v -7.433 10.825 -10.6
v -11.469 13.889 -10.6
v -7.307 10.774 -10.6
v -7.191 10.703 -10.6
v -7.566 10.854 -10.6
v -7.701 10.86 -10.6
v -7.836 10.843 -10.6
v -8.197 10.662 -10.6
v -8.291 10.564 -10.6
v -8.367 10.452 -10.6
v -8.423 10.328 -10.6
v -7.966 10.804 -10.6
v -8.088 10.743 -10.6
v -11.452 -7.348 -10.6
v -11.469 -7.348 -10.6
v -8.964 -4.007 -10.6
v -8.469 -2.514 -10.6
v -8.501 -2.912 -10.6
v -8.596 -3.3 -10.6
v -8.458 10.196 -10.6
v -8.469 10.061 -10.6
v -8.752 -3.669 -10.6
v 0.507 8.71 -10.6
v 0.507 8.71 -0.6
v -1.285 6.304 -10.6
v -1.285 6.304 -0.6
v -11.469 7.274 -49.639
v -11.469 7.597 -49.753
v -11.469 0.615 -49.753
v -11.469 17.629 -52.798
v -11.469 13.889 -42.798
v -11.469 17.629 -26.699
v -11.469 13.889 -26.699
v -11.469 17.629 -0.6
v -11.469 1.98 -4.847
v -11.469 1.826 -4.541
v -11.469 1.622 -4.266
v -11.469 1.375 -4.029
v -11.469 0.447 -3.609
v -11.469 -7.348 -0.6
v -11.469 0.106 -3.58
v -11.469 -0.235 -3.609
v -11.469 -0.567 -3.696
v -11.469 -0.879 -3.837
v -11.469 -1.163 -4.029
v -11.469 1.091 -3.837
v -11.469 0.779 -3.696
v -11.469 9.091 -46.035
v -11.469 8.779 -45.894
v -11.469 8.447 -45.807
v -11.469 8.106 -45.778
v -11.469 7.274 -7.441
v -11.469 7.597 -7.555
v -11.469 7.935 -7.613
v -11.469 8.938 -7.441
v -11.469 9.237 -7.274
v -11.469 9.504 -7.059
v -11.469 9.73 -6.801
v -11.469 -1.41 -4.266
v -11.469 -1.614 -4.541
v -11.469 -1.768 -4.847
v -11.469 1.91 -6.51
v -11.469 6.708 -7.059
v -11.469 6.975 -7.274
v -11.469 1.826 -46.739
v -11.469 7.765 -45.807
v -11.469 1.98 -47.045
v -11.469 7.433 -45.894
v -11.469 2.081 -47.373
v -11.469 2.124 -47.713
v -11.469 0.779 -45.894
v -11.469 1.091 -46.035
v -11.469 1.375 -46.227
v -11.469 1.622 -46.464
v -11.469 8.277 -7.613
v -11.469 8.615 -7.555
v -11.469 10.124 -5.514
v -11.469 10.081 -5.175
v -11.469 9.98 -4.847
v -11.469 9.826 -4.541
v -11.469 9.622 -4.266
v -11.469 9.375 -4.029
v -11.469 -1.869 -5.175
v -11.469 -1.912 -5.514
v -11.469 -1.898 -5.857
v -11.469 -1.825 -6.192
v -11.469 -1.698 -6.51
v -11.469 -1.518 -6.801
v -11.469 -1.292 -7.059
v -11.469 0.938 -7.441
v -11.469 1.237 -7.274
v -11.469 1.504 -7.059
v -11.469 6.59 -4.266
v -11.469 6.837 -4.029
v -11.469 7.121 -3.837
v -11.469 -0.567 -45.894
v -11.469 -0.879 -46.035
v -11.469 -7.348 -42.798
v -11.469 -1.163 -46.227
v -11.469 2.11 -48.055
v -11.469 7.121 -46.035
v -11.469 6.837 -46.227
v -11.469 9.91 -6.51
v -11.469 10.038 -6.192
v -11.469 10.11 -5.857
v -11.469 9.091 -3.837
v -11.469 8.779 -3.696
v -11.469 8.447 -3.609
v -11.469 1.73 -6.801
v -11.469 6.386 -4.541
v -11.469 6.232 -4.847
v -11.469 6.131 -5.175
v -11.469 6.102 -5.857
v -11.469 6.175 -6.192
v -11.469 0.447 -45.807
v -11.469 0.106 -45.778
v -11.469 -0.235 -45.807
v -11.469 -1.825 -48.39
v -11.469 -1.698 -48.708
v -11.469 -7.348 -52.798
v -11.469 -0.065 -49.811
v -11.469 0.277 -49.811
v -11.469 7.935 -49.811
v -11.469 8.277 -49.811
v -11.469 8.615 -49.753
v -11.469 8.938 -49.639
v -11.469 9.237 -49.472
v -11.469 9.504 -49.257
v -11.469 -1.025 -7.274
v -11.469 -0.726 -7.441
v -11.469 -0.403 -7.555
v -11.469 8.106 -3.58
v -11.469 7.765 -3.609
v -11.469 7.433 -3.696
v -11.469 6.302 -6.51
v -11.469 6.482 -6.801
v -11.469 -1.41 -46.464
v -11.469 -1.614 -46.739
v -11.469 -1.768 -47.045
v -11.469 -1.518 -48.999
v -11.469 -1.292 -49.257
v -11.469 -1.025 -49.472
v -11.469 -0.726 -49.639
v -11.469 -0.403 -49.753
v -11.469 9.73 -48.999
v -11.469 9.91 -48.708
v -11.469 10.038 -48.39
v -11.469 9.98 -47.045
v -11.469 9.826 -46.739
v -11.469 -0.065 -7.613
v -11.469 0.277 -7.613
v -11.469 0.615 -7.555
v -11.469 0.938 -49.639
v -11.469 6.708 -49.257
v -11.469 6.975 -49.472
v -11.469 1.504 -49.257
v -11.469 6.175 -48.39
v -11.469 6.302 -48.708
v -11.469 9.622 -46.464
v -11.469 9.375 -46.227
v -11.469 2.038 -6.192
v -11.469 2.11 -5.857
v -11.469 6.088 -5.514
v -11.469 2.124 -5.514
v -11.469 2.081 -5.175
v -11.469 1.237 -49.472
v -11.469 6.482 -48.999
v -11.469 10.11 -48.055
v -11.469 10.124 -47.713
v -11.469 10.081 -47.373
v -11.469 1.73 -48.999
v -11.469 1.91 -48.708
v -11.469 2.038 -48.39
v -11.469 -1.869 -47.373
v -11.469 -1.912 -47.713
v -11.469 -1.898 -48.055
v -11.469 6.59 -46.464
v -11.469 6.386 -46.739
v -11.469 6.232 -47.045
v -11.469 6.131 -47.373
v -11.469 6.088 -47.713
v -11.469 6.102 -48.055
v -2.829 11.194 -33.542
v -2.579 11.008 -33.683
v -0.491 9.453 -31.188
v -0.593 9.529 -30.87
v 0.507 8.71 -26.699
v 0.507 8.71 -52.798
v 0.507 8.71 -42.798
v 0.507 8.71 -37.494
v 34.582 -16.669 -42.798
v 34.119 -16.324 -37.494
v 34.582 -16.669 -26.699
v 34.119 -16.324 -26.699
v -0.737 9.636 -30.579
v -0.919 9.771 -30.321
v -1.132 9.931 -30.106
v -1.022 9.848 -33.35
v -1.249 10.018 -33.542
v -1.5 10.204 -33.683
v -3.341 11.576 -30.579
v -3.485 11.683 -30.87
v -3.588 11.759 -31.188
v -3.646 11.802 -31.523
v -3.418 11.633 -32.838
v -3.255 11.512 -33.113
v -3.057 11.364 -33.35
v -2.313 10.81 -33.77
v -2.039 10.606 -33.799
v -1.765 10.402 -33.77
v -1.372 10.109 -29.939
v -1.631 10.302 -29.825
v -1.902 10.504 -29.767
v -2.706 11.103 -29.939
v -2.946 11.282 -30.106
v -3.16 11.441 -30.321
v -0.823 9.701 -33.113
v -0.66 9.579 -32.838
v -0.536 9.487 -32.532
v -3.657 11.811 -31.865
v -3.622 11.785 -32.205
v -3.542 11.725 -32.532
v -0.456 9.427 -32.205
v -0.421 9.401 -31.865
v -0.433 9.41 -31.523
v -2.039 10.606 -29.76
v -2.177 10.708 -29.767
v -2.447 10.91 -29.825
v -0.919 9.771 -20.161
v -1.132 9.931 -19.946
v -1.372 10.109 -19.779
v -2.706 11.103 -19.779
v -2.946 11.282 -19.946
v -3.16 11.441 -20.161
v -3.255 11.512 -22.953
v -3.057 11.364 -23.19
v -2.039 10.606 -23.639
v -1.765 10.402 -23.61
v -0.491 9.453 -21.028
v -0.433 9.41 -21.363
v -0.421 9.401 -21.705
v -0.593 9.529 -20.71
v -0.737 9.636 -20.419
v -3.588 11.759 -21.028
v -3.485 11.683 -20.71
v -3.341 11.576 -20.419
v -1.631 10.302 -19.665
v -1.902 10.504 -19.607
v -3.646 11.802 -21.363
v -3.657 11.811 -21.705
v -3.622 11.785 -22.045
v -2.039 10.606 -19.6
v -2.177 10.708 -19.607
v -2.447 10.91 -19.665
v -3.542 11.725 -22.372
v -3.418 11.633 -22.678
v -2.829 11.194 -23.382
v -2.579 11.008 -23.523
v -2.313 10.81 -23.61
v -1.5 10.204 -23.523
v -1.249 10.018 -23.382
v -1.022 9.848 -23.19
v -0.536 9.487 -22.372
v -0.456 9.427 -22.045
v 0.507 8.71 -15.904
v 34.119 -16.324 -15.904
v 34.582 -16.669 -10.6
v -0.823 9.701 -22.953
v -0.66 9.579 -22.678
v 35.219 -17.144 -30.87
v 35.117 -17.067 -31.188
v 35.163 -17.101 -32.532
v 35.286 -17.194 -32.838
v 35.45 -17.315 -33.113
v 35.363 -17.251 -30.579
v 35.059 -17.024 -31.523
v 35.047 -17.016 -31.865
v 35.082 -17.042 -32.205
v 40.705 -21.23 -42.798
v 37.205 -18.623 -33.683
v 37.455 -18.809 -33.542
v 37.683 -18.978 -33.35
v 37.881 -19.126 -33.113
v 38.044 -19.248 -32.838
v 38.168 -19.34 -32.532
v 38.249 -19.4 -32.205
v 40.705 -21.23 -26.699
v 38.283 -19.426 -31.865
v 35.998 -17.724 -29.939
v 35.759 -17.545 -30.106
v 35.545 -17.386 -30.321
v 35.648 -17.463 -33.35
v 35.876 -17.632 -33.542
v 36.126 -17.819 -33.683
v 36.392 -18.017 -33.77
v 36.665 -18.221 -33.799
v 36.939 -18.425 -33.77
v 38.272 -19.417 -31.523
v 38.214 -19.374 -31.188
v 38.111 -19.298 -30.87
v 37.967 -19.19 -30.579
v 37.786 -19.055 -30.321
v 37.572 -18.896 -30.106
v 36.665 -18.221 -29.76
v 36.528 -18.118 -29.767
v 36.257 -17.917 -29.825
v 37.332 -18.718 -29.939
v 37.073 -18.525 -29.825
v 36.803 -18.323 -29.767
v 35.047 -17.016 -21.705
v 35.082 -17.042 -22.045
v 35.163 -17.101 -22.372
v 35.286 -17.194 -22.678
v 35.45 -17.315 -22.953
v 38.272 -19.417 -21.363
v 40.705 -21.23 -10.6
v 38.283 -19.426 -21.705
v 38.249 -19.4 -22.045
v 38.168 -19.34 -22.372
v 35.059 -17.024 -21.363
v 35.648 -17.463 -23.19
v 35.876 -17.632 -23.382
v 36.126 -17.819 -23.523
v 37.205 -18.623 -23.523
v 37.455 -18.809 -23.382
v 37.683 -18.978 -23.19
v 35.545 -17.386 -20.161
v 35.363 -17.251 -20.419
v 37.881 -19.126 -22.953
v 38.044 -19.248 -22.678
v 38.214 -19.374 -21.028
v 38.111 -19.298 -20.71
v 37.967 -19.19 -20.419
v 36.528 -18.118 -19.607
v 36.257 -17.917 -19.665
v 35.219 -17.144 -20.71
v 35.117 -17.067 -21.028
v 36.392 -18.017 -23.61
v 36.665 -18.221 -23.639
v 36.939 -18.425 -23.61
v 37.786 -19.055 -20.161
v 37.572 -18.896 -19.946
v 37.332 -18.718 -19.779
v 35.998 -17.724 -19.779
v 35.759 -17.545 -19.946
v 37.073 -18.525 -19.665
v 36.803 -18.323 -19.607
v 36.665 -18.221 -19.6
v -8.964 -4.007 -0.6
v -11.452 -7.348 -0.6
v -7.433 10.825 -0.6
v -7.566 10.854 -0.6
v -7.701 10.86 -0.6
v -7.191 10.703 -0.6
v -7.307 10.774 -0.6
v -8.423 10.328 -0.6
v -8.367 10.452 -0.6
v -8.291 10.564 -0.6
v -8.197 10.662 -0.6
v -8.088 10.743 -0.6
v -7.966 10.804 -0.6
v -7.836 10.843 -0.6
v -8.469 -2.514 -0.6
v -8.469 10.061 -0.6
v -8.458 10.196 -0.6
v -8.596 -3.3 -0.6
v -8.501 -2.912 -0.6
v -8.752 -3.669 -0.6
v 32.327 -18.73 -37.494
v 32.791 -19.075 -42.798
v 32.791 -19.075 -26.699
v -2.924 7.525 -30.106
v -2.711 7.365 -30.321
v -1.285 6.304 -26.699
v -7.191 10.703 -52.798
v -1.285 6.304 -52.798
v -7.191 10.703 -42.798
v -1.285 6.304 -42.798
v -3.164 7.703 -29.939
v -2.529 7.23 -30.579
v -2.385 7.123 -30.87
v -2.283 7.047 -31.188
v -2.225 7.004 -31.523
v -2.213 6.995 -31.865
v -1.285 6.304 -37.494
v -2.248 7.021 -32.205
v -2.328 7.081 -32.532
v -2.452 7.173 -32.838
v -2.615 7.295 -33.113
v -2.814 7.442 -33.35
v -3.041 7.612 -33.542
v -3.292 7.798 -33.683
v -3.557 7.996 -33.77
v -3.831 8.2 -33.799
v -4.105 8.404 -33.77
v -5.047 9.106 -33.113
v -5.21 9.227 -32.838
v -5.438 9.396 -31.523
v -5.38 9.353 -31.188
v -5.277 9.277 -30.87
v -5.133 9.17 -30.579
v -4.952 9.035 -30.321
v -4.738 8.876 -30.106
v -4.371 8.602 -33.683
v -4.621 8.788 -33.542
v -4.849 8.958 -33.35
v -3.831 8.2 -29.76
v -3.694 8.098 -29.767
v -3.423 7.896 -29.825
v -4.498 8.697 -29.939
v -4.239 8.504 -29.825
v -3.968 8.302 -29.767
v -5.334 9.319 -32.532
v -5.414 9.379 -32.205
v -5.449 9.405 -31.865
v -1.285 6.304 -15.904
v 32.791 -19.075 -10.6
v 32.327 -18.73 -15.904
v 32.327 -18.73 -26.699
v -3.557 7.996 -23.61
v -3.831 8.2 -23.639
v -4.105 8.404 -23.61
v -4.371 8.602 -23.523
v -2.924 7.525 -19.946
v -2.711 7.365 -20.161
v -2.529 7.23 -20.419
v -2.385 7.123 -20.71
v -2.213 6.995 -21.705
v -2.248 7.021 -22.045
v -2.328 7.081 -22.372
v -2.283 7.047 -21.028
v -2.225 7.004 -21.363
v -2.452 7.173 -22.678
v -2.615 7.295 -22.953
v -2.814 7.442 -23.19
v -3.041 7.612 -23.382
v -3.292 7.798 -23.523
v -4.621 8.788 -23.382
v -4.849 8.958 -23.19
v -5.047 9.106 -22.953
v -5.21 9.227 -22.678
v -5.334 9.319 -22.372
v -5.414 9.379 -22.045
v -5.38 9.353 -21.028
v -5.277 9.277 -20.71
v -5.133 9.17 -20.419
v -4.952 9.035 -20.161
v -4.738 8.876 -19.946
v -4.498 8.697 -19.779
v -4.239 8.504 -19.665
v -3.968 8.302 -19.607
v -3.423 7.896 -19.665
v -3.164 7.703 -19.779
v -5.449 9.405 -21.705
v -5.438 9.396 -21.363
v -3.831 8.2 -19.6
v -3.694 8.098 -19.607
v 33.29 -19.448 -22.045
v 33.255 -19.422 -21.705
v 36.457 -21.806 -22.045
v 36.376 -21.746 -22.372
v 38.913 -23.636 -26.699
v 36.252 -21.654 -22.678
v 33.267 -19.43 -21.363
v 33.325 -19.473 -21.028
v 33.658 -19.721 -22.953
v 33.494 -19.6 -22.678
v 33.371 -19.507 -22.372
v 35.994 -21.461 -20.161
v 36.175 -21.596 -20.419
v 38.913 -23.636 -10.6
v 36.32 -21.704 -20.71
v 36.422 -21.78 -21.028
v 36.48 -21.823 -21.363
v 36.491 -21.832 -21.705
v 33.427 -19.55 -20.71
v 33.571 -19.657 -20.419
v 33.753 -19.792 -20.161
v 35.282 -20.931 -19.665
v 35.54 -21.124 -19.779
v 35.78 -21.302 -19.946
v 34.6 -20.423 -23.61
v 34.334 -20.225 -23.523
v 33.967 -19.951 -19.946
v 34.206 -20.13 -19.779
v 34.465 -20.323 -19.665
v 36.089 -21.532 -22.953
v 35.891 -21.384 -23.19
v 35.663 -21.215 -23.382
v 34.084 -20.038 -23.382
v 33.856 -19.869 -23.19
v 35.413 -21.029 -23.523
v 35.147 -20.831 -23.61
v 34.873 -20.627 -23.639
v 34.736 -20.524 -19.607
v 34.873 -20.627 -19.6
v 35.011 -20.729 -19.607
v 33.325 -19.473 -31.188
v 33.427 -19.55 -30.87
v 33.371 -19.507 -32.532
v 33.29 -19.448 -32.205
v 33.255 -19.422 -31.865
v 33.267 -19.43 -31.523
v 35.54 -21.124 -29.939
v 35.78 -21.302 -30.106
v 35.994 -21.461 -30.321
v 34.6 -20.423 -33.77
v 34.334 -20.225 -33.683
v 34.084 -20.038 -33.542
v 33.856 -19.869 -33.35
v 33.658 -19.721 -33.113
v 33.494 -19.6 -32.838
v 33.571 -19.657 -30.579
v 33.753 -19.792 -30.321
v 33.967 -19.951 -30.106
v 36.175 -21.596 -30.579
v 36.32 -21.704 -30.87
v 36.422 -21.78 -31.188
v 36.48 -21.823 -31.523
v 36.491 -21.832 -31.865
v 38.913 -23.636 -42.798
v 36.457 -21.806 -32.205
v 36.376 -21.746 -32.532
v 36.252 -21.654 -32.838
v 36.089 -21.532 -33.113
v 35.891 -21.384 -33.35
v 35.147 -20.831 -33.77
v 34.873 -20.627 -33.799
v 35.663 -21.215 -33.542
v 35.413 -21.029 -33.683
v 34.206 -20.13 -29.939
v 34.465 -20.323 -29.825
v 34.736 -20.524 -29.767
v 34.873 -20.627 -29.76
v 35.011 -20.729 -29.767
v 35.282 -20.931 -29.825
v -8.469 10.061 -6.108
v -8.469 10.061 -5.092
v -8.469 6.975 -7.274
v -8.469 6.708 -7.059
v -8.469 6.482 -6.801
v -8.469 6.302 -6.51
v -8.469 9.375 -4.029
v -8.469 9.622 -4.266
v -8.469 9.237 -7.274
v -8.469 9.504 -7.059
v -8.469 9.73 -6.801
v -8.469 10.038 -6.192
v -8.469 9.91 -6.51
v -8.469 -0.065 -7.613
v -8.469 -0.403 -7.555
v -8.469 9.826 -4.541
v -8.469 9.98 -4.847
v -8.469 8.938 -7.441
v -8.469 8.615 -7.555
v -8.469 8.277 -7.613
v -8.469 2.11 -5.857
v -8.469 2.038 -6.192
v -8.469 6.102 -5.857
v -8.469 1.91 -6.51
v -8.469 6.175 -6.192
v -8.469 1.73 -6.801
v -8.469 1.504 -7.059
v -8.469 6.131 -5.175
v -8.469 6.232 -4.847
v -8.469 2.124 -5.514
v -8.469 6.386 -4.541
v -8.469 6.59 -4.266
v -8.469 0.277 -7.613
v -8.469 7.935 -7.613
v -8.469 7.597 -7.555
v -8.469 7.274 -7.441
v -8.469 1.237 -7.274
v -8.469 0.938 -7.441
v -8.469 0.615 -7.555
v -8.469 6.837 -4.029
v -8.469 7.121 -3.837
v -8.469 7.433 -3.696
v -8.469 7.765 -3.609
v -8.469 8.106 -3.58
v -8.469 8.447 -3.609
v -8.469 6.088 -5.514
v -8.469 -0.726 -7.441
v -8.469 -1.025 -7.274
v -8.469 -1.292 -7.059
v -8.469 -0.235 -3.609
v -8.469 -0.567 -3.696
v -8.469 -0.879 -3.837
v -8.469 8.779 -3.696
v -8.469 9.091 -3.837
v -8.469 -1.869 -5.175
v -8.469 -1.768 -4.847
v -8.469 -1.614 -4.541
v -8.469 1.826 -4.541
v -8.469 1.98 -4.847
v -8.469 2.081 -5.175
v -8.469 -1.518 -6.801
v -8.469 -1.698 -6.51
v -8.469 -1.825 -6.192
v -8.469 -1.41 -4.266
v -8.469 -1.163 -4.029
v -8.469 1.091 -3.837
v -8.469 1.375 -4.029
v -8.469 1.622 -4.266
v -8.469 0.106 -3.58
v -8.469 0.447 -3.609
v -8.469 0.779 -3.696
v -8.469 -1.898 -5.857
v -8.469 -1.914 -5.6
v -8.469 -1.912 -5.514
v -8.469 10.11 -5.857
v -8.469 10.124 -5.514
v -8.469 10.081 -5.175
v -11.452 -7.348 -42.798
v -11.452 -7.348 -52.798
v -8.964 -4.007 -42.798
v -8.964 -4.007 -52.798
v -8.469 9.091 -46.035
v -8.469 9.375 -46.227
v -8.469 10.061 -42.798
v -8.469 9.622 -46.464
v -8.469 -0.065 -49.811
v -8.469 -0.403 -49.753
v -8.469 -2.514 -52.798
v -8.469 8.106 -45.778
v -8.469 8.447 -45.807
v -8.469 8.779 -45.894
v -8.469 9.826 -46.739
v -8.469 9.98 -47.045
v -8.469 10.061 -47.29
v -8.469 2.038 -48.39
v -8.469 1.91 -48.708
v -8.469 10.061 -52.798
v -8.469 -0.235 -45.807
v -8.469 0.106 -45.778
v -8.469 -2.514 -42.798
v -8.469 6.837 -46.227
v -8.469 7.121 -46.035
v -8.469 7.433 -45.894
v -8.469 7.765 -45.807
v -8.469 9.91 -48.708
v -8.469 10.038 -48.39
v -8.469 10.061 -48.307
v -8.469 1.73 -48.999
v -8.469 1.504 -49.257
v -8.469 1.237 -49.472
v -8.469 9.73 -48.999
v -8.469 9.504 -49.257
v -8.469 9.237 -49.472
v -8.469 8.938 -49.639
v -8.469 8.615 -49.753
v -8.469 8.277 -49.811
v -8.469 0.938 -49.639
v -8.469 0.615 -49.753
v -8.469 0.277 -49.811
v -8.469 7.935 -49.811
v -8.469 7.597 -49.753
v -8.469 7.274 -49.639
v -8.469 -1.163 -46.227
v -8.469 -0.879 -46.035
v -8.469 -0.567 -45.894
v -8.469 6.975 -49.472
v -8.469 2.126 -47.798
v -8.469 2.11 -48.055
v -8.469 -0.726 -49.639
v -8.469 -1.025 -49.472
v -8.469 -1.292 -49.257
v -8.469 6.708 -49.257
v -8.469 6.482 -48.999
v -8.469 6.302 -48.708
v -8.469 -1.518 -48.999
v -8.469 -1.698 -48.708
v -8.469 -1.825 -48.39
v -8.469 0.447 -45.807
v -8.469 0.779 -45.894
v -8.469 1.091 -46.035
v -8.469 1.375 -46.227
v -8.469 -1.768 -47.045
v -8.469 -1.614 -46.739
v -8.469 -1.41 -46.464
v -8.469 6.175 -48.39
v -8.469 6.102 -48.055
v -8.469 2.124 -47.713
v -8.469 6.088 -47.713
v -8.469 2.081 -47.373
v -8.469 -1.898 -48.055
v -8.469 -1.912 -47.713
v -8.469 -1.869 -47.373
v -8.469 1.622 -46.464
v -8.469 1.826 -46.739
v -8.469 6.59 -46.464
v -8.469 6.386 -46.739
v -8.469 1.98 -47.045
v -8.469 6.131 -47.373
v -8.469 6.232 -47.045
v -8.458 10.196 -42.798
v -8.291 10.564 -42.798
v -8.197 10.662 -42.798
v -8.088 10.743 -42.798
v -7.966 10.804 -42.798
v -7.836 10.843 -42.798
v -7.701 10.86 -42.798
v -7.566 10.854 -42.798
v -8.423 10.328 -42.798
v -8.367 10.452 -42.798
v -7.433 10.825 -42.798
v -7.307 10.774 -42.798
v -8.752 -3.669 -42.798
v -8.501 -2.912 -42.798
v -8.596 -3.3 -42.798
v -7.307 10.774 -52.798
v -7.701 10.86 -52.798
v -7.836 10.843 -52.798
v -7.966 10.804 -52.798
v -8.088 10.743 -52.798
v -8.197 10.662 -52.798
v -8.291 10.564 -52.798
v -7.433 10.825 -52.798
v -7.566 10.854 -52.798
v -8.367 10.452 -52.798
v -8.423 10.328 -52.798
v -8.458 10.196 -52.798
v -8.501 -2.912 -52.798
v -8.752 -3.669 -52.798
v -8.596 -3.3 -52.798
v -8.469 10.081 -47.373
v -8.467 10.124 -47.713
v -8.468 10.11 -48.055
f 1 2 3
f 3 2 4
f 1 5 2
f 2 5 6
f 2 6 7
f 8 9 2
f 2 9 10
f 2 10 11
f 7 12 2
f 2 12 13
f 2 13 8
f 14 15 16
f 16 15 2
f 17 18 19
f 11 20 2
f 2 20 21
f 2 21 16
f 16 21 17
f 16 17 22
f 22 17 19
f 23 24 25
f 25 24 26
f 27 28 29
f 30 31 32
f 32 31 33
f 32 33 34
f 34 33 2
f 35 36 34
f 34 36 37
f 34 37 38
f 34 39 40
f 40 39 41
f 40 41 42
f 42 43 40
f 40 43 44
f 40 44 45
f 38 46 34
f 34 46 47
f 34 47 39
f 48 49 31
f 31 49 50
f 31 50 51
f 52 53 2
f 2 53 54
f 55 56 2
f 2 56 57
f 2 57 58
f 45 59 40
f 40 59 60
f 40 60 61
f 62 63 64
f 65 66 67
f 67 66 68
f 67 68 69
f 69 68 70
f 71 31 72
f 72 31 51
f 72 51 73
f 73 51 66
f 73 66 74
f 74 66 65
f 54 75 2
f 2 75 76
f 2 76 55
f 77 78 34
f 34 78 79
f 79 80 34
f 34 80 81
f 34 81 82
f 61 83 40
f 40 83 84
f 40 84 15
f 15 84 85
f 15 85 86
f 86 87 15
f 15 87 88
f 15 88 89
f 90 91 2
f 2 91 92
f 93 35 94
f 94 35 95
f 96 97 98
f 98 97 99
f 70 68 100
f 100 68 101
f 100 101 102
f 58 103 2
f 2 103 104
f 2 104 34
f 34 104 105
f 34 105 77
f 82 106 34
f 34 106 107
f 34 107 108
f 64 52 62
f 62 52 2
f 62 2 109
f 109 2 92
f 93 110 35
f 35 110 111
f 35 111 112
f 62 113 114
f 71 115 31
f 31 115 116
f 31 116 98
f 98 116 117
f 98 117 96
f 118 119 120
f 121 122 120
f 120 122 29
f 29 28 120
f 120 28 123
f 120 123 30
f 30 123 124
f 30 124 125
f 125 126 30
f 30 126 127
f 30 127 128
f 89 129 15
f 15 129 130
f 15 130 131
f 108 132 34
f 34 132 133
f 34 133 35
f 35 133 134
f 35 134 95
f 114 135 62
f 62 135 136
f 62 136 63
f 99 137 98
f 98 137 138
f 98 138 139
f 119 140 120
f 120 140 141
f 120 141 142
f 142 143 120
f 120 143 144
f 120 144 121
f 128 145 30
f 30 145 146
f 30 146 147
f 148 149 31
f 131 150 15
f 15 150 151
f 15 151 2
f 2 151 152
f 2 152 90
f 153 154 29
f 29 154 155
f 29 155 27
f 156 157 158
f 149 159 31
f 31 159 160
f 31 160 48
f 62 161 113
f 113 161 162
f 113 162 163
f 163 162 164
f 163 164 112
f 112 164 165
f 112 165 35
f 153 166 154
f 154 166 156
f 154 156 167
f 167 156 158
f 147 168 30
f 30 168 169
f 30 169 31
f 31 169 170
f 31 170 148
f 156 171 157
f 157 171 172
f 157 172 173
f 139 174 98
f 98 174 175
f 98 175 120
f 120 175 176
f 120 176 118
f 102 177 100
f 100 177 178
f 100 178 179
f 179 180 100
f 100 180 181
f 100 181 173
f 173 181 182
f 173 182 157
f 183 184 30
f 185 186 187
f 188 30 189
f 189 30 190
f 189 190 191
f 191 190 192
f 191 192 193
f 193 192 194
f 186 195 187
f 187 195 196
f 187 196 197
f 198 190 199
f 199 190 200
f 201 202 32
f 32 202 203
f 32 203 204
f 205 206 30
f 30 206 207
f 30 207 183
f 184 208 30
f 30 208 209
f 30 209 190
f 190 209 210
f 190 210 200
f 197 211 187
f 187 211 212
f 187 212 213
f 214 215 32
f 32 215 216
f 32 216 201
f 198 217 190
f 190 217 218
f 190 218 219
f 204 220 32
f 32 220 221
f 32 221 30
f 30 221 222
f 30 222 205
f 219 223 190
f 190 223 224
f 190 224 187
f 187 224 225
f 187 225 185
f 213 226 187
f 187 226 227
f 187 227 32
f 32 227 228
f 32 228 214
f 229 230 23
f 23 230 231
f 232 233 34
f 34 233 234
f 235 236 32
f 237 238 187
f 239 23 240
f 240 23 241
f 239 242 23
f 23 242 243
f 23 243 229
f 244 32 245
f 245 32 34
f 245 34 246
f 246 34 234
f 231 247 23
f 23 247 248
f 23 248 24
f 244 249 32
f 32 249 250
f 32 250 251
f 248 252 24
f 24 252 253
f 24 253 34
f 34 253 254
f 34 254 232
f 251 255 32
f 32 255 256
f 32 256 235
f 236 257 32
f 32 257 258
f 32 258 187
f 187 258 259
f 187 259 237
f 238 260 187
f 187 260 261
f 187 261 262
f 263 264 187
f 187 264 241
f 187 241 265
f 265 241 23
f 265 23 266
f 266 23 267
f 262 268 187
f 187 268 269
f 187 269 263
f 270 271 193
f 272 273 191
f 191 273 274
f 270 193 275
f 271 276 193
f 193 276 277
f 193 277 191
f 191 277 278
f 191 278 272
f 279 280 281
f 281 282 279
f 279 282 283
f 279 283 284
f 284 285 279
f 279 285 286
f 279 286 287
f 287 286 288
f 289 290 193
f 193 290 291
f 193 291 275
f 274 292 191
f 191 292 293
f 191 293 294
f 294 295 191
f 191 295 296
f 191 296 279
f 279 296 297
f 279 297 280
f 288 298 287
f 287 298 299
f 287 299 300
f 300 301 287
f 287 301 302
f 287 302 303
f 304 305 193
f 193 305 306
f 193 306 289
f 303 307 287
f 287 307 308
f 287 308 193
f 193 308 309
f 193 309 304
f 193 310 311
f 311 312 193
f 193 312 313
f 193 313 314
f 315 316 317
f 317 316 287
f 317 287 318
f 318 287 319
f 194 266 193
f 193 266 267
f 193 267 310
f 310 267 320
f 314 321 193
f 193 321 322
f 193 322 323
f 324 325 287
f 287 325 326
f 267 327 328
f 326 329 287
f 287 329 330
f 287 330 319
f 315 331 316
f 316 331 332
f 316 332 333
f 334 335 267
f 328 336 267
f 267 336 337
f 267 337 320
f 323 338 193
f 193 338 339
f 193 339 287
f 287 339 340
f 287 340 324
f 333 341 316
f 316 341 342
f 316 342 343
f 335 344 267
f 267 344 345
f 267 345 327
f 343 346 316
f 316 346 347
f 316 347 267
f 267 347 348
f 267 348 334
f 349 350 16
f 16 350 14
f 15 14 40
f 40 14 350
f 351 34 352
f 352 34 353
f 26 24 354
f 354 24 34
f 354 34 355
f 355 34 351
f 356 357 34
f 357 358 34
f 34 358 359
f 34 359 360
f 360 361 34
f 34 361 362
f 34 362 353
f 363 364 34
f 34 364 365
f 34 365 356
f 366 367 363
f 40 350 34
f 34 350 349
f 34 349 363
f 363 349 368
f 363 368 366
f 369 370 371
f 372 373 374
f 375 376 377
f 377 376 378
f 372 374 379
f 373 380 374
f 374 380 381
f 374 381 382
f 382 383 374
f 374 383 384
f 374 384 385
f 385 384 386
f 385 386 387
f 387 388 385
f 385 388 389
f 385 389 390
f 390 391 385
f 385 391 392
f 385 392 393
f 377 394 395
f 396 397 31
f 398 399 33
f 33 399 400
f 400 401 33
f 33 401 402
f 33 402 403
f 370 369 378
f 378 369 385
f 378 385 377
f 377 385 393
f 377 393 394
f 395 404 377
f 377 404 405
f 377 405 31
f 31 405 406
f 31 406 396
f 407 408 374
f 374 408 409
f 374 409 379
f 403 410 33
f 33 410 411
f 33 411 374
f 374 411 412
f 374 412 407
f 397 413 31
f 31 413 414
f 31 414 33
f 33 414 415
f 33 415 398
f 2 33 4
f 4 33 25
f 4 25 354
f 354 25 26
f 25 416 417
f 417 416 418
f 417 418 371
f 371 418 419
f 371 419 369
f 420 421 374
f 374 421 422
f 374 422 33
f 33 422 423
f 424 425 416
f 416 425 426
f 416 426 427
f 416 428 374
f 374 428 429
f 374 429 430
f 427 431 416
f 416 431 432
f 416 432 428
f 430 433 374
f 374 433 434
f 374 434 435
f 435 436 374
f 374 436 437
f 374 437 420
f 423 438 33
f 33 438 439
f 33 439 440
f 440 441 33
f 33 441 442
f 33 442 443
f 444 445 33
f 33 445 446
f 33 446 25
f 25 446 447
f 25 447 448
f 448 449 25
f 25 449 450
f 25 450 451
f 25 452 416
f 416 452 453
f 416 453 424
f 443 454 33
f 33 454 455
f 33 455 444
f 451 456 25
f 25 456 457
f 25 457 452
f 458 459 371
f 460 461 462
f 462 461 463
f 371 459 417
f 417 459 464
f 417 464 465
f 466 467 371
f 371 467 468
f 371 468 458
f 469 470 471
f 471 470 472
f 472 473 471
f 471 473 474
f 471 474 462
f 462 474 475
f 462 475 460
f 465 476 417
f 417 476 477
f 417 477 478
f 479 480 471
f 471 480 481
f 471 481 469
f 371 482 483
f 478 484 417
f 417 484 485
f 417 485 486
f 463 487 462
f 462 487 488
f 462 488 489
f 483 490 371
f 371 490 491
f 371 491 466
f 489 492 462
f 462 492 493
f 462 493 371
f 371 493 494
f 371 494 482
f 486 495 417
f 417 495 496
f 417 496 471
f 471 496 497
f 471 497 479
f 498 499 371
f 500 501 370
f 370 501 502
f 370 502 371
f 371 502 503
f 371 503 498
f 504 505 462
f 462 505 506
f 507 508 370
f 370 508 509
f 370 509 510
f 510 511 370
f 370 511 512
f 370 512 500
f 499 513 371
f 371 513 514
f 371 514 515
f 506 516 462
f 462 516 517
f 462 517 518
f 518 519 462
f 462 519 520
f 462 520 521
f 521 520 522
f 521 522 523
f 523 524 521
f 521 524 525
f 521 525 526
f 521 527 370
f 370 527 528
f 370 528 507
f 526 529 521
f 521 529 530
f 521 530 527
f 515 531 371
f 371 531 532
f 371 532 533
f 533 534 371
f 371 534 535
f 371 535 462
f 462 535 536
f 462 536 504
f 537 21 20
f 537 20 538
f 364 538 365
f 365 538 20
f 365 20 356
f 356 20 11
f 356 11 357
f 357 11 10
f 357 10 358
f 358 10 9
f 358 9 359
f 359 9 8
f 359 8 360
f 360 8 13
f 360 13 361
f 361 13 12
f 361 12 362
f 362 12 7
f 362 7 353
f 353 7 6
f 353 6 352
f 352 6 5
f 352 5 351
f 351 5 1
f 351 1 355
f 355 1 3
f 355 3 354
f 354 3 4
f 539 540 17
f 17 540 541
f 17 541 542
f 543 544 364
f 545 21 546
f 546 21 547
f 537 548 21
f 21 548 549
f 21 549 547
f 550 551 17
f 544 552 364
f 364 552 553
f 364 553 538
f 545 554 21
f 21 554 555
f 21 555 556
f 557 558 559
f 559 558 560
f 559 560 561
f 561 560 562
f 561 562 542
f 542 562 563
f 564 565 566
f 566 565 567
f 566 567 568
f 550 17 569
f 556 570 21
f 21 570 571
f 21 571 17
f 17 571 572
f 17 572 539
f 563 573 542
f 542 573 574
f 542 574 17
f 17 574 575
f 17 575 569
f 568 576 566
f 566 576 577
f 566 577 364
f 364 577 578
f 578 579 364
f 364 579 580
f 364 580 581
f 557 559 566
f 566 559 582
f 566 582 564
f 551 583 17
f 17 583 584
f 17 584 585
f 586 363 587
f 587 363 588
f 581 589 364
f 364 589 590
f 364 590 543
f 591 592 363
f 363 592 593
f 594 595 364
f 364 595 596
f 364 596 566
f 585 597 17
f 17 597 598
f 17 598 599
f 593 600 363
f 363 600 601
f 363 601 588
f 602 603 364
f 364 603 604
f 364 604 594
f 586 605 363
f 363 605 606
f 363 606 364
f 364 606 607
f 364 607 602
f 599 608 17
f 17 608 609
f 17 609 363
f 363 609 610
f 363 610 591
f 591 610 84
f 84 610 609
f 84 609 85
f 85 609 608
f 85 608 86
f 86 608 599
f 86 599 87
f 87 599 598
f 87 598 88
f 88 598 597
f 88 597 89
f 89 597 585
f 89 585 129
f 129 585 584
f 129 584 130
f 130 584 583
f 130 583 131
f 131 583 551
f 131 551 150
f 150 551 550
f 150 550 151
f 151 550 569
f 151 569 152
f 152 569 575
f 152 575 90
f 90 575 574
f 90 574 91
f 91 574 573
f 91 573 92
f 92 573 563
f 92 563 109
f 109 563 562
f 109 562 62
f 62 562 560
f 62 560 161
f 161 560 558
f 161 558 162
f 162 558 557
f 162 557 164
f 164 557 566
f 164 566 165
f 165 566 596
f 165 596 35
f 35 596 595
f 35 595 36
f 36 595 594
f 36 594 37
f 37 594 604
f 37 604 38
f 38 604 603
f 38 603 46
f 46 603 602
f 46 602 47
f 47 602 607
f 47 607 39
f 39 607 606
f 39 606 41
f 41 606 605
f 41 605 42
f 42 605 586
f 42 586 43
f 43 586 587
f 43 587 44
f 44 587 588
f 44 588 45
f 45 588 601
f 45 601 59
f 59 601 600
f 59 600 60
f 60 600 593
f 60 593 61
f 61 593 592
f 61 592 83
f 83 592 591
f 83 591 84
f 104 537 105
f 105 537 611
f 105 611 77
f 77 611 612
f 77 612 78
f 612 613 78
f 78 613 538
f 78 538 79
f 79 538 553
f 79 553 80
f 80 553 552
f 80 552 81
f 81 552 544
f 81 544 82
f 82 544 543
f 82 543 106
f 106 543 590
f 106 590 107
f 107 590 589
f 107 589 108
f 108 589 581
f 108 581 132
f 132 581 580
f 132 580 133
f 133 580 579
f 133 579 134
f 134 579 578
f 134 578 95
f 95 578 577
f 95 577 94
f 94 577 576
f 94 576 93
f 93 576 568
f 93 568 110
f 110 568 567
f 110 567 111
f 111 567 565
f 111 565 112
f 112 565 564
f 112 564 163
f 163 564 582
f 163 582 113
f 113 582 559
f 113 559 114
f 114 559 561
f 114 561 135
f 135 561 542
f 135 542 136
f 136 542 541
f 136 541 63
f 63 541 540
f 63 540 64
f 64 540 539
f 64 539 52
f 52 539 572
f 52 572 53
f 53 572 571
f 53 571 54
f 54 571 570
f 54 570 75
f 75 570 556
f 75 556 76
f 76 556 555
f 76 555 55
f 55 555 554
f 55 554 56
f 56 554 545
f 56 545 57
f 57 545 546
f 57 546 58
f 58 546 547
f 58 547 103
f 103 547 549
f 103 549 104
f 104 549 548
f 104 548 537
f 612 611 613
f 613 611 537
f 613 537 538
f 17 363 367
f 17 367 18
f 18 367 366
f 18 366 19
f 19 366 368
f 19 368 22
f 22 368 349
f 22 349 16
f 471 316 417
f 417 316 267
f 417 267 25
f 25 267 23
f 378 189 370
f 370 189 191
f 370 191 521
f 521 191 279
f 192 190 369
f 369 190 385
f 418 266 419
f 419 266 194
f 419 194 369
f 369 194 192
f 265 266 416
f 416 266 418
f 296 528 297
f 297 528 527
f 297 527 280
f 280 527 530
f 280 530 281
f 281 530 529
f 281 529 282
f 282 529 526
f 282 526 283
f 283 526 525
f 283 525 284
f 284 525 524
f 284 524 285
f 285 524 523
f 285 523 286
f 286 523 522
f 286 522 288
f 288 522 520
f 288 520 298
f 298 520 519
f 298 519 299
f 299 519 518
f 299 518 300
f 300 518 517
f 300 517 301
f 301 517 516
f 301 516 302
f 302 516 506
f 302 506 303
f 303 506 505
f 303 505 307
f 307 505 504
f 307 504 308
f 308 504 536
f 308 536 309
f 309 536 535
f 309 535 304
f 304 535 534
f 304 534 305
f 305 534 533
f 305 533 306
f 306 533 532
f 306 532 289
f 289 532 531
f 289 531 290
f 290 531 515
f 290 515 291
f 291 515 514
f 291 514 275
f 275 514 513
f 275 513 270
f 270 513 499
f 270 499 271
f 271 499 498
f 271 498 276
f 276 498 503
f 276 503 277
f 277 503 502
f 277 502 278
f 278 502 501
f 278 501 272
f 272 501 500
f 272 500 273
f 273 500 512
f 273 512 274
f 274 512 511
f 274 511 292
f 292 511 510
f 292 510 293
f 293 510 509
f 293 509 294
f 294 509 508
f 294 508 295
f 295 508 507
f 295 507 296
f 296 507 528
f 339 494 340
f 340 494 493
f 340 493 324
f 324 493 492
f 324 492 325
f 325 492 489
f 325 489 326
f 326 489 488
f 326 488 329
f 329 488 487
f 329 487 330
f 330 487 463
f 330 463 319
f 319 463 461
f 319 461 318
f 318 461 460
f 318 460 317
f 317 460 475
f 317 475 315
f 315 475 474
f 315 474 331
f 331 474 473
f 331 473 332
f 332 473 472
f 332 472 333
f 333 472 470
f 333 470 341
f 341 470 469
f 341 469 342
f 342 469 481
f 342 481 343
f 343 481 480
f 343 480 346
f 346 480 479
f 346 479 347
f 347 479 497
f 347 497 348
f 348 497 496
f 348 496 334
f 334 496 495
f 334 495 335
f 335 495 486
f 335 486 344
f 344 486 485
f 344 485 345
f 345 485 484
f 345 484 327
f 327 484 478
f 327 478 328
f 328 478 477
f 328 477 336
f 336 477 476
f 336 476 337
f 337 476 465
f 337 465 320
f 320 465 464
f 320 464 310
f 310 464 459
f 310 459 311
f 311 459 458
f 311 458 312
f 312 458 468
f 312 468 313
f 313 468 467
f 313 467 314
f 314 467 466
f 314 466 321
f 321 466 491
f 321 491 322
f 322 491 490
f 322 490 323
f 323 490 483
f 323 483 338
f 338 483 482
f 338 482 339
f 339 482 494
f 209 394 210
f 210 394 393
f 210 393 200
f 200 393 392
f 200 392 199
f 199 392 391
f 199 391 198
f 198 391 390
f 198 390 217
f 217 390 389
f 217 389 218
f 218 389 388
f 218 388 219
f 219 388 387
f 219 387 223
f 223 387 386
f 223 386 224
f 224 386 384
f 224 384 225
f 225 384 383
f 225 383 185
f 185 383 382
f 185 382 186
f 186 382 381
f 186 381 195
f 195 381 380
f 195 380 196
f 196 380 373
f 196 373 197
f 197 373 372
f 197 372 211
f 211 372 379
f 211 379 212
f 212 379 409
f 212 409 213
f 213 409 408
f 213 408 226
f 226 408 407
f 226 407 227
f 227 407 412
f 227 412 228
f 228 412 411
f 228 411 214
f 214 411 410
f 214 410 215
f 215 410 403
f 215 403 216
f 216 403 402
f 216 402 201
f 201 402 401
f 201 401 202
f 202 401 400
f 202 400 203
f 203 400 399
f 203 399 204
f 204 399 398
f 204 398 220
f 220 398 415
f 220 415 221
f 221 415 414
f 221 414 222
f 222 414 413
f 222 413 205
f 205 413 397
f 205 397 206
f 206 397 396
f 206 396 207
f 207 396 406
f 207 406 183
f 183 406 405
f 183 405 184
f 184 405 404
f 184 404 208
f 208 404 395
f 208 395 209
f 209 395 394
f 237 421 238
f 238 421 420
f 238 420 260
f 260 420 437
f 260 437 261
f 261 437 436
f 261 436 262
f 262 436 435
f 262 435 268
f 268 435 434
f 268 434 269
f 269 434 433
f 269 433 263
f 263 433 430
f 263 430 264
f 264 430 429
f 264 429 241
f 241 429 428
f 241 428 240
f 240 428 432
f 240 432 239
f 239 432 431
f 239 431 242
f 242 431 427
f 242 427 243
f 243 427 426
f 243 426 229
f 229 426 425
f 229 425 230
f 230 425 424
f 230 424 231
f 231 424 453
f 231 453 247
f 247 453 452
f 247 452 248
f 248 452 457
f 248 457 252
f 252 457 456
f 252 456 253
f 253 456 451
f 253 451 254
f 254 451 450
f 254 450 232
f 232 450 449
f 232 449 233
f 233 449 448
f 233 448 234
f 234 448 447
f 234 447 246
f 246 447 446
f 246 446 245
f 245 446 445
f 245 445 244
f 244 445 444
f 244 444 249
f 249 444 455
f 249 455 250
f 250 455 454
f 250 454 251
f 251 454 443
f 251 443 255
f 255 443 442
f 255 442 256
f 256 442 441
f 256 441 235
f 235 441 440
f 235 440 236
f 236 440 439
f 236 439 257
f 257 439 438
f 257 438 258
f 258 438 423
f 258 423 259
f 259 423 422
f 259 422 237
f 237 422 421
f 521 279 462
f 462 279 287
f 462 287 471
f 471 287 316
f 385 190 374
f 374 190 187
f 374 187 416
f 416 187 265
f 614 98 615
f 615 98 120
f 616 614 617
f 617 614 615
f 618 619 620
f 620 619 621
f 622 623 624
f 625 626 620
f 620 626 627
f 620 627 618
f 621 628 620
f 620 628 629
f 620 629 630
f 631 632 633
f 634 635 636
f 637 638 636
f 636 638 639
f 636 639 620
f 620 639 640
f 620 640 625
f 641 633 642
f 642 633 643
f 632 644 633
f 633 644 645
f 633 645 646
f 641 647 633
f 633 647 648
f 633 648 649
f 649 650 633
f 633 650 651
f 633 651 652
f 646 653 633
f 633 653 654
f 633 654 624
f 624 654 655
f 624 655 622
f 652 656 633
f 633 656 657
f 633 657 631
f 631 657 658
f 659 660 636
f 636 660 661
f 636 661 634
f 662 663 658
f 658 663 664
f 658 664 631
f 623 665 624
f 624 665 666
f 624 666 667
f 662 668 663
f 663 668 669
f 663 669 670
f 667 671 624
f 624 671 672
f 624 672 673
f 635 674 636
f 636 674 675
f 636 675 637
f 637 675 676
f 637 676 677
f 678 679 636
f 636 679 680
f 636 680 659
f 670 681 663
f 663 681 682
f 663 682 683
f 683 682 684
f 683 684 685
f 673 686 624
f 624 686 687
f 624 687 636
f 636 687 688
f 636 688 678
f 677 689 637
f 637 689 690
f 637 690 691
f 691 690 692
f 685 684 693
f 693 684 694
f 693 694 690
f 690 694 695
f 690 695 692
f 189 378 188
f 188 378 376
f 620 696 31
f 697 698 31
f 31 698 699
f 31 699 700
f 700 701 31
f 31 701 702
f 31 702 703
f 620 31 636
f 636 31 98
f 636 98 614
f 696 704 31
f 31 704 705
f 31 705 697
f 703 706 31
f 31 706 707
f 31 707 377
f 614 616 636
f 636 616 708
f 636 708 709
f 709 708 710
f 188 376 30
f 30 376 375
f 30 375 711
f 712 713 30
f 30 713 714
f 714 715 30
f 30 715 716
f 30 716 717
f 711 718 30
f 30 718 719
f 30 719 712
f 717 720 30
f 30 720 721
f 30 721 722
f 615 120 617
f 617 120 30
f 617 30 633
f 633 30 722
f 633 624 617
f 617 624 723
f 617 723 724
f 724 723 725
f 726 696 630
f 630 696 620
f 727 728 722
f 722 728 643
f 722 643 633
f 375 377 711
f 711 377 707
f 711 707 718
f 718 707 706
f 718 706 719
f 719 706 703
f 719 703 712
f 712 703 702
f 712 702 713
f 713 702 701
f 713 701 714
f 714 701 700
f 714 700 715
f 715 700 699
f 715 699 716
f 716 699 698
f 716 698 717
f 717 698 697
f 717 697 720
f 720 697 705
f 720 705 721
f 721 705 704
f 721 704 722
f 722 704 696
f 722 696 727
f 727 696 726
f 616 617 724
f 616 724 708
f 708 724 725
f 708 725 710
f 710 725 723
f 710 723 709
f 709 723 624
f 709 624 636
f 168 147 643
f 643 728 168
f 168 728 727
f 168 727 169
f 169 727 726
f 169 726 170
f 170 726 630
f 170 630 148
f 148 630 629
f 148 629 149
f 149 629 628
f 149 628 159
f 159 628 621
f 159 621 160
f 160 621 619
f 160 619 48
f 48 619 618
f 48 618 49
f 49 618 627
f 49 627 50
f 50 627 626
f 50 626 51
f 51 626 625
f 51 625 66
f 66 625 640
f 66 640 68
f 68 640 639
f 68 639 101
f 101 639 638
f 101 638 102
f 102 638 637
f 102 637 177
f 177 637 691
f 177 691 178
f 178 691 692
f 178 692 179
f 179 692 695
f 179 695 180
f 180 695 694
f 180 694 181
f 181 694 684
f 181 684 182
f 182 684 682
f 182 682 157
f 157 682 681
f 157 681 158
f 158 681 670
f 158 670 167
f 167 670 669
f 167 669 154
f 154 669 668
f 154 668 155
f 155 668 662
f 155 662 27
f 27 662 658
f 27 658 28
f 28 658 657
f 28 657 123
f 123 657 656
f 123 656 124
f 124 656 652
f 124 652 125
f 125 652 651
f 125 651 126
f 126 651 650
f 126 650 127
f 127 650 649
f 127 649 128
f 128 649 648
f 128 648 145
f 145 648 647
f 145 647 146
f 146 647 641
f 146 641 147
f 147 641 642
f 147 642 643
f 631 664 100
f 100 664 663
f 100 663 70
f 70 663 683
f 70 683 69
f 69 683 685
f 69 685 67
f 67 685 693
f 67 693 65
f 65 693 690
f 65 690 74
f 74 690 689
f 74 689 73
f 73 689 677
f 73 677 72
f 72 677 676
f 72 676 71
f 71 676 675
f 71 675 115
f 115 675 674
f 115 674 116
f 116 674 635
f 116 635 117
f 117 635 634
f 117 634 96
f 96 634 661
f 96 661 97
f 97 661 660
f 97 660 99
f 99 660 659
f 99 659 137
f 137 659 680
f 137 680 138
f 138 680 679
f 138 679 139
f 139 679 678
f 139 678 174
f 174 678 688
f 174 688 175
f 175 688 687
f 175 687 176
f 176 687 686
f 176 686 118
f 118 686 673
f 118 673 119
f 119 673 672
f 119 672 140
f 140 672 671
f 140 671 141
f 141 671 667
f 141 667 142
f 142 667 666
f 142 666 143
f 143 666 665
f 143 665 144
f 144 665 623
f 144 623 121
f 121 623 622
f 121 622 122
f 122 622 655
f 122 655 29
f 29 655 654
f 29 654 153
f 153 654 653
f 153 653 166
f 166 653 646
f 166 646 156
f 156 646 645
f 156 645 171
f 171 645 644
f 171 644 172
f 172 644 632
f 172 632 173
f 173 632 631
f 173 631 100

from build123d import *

# Parameters (mm, degrees)
BOSS_EXTRUDE1_DEPTH        = 10
CUT_EXTRUDE1_DEPTH         = 24.288163202
M3_5_CLEARANCE_HOLE1_D     = 4.04
M3_5_CLEARANCE_HOLE1_DEPTH = 11.976330523
M3_5_CLEARANCE_HOLE2_D     = 4.04
M3_5_CLEARANCE_HOLE2_DEPTH = 3
FILLET1_R                  = 2.5
COMBINE1_START             = -42.798318907
COMBINE1_DEPTH             = 32.198103497
COMBINE1_START_2           = -52.798318907
COMBINE1_2_DEPTH           = 10
COMBINE1_3_DEPTH           = 5.304051749
COMBINE1_START_3           = -15.904267158
COMBINE1_4_DEPTH           = 5.304051748


with BuildPart() as part:
    # Sketch1 → Boss-Extrude1 (new body)
    with BuildSketch(Plane.XY.offset(-0.60021541)):
        Polygon((-11.469163068, -7.348185616), (-11.452492295, -7.348185616), (0.507167456, 8.709585816), (-11.469163068, 17.629431184), align=None)
    extrude(amount=-BOSS_EXTRUDE1_DEPTH)

    # Sketch2 → Cut-Extrude1 (cut, through all)
    with BuildSketch(Plane(origin=(0, 0, -10.60021541), x_dir=(-1, 0, 0), z_dir=(0, 0, -1))):
        with BuildLine():
            Line((8.469163068, -3.342585136), (8.469163068, 10.061084473))
            ThreePointArc((8.469163068, 10.061084473), (8.028129493, 10.776027202), (7.191305305, 10.702685563))
            Line((7.191305305, 10.702685563), (1.284799154, 6.303581729))
            Line((1.284799154, 6.303581729), (8.469163068, -3.342585136))
        make_face()
    extrude(amount=-CUT_EXTRUDE1_DEPTH, mode=Mode.SUBTRACT)

    # M3.5 Clearance Hole1
    with Locations(Plane.ZY.offset(11.469163068)):
        with Locations((-5.60021541, 0.106053799)):
            Hole(M3_5_CLEARANCE_HOLE1_D / 2, depth=M3_5_CLEARANCE_HOLE1_DEPTH)

    # M3.5 Clearance Hole2
    with Locations(Plane.ZY.offset(11.469163068)):
        with Locations((-5.60021541, 8.106053799)):
            Hole(M3_5_CLEARANCE_HOLE2_D / 2, depth=M3_5_CLEARANCE_HOLE2_DEPTH)

    # Fillet1
    fillet1_edges = [part.edges().sort_by_distance(p)[0] for p in [
        (-8.469163068, -3.342585136, -5.60021541),
    ]]
    fillet(fillet1_edges, radius=FILLET1_R)

    # Combine1: read off the stored shape, not the designer's step
    # Combine1 outline → Combine1 (add)
    with BuildSketch(Plane.XY.offset(COMBINE1_START)):
        Polygon((-1.284799143, 6.30358172), (0.507167468, 8.709585807), (-11.469163068, 17.629431184), (-11.469163068, 13.888789159), align=None)
        Polygon((40.70546383, -21.229683728), (34.119044566, -16.324187738), (32.327077956, -18.730191825), (38.913497219, -23.635687815), align=None)
    extrude(amount=COMBINE1_DEPTH)

    # Combine1 2 outline → Combine1 2 (add)
    with BuildSketch(Plane.XY.offset(COMBINE1_START_2)):
        with BuildLine():
            Line((-1.284799143, 6.30358172), (0.507167468, 8.709585807))
            Line((0.507167468, 8.709585807), (-11.469163068, 17.629431184))
            Line((-11.469163068, 17.629431184), (-11.469163068, -7.348185616))
            Line((-11.469163068, -7.348185616), (-11.452492295, -7.348185616))
            Line((-11.452492295, -7.348185616), (-8.964159662, -4.00719787))
            ThreePointArc((-8.964159662, -4.00719787), (-8.596136676, -3.300496292), (-8.469163068, -2.513892362))
            Line((-8.469163068, -2.513892362), (-8.469163068, 10.061084473))
            ThreePointArc((-8.469163068, 10.061084473), (-8.028129494, 10.776027202), (-7.191305305, 10.702685563))
            Line((-7.191305305, 10.702685563), (-1.284799143, 6.30358172))
        make_face()
    extrude(amount=COMBINE1_2_DEPTH)

    # Combine1 3 outline → Combine1 3 (add)
    with BuildSketch(Plane.XY.offset(COMBINE1_START)):
        Polygon((34.119044566, -16.324187738), (0.507167462, 8.709585812), (-1.284799143, 6.30358172), (32.327077956, -18.730191825), align=None)
    extrude(amount=COMBINE1_3_DEPTH)

    # Combine1 4 outline → Combine1 4 (add)
    with BuildSketch(Plane.XY.offset(COMBINE1_START_3)):
        Polygon((34.119044566, -16.324187738), (0.507167462, 8.709585812), (-1.284799143, 6.30358172), (32.327077956, -18.730191825), align=None)
    extrude(amount=COMBINE1_4_DEPTH)

    # Combine1 5: loft between two sections, ruled curve by curve
    combine1_5_from = [
        Edge.make_three_point_arc((36.665398892, -18.220685734, -29.759967158), (35.045917541, -17.014513008, -31.779267158), (36.665398892, -18.220685734, -33.798567158)),
        Edge.make_three_point_arc((36.665398892, -18.220685734, -33.798567158), (38.284880243, -19.426858459, -31.779267158), (36.665398892, -18.220685734, -29.759967158)),
    ]
    combine1_5_to = [
        Edge.make_three_point_arc((34.873432281, -20.626689821, -29.759967158), (33.25395093, -19.420517096, -31.779267158), (34.873432281, -20.626689821, -33.798567158)),
        Edge.make_three_point_arc((34.873432281, -20.626689821, -33.798567158), (36.492913632, -21.832862546, -31.779267158), (34.873432281, -20.626689821, -29.759967158)),
    ]
    combine1_5 = Solid(Shell([*[Face.make_surface_from_curves(combine1_5_from[k], combine1_5_to[k]) for k in range(2)], Face(Wire(combine1_5_from)), Face(Wire(combine1_5_to))]))
    add(combine1_5, mode=Mode.SUBTRACT)

    # Combine1 6: loft between two sections, ruled curve by curve
    combine1_6_from = [
        Edge.make_three_point_arc((36.665398892, -18.220685734, -19.599967158), (35.045917541, -17.014513008, -21.619267158), (36.665398892, -18.220685734, -23.638567158)),
        Edge.make_three_point_arc((36.665398892, -18.220685734, -23.638567158), (38.284880243, -19.426858459, -21.619267158), (36.665398892, -18.220685734, -19.599967158)),
    ]
    combine1_6_to = [
        Edge.make_three_point_arc((34.873432281, -20.626689821, -19.599967158), (33.25395093, -19.420517096, -21.619267158), (34.873432281, -20.626689821, -23.638567158)),
        Edge.make_three_point_arc((34.873432281, -20.626689821, -23.638567158), (36.492913632, -21.832862546, -21.619267158), (34.873432281, -20.626689821, -19.599967158)),
    ]
    combine1_6 = Solid(Shell([*[Face.make_surface_from_curves(combine1_6_from[k], combine1_6_to[k]) for k in range(2)], Face(Wire(combine1_6_from)), Face(Wire(combine1_6_to))]))
    add(combine1_6, mode=Mode.SUBTRACT)

    # Combine1 7: loft between two sections, ruled curve by curve
    combine1_7_from = [
        Edge.make_three_point_arc((-2.039186858, 10.606083803, -29.759967158), (-3.658668209, 11.812256529, -31.779267158), (-2.039186858, 10.606083803, -33.798567158)),
        Edge.make_three_point_arc((-2.039186858, 10.606083803, -33.798567158), (-0.419705507, 9.399911078, -31.779267158), (-2.039186858, 10.606083803, -29.759967158)),
    ]
    combine1_7_to = [
        Edge.make_three_point_arc((-3.831153468, 8.200079716, -29.759967158), (-5.45063482, 9.406252441, -31.779267158), (-3.831153468, 8.200079716, -33.798567158)),
        Edge.make_three_point_arc((-3.831153468, 8.200079716, -33.798567158), (-2.211672117, 6.993906991, -31.779267158), (-3.831153468, 8.200079716, -29.759967158)),
    ]
    combine1_7 = Solid(Shell([*[Face.make_surface_from_curves(combine1_7_from[k], combine1_7_to[k]) for k in range(2)], Face(Wire(combine1_7_from)), Face(Wire(combine1_7_to))]))
    add(combine1_7, mode=Mode.SUBTRACT)

    # Combine1 8: loft between two sections, ruled curve by curve
    combine1_8_from = [
        Edge.make_three_point_arc((-2.039186858, 10.606083803, -19.599967158), (-3.658668209, 11.812256529, -21.619267158), (-2.039186858, 10.606083803, -23.638567158)),
        Edge.make_three_point_arc((-2.039186858, 10.606083803, -23.638567158), (-0.419705507, 9.399911078, -21.619267158), (-2.039186858, 10.606083803, -19.599967158)),
    ]
    combine1_8_to = [
        Edge.make_three_point_arc((-3.831153468, 8.200079716, -19.599967158), (-5.45063482, 9.406252441, -21.619267158), (-3.831153468, 8.200079716, -23.638567158)),
        Edge.make_three_point_arc((-3.831153468, 8.200079716, -23.638567158), (-2.211672117, 6.993906991, -21.619267158), (-3.831153468, 8.200079716, -19.599967158)),
    ]
    combine1_8 = Solid(Shell([*[Face.make_surface_from_curves(combine1_8_from[k], combine1_8_to[k]) for k in range(2)], Face(Wire(combine1_8_from)), Face(Wire(combine1_8_to))]))
    add(combine1_8, mode=Mode.SUBTRACT)

    # Combine1 9: loft between two sections, ruled curve by curve
    combine1_9_from = [
        Edge.make_three_point_arc((-8.466516755, 8.106053799, -45.778318907), (-8.466516755, 10.126053799, -47.798318907), (-8.466516755, 8.106053799, -49.818318907)),
        Edge.make_three_point_arc((-8.466516755, 8.106053799, -49.818318907), (-8.466516755, 6.086053799, -47.798318907), (-8.466516755, 8.106053799, -45.778318907)),
    ]
    combine1_9_to = [
        Edge.make_three_point_arc((-11.469163068, 8.106053799, -45.778318907), (-11.469163068, 10.126053799, -47.798318907), (-11.469163068, 8.106053799, -49.818318907)),
        Edge.make_three_point_arc((-11.469163068, 8.106053799, -49.818318907), (-11.469163068, 6.086053799, -47.798318907), (-11.469163068, 8.106053799, -45.778318907)),
    ]
    combine1_9 = Solid(Shell([*[Face.make_surface_from_curves(combine1_9_from[k], combine1_9_to[k]) for k in range(2)], Face(Wire(combine1_9_from)), Face(Wire(combine1_9_to))]))
    add(combine1_9, mode=Mode.SUBTRACT)

    # Combine1 10: loft between two sections, ruled curve by curve
    combine1_10_from = [
        Edge.make_three_point_arc((-8.469163068, 0.106053799, -45.778318907), (-8.469163068, 2.126053799, -47.798318907), (-8.469163068, 0.106053799, -49.818318907)),
        Edge.make_three_point_arc((-8.469163068, 0.106053799, -49.818318907), (-8.469163068, -1.913946201, -47.798318907), (-8.469163068, 0.106053799, -45.778318907)),
    ]
    combine1_10_to = [
        Edge.make_three_point_arc((-11.469163068, 0.106053799, -45.778318907), (-11.469163068, 2.126053799, -47.798318907), (-11.469163068, 0.106053799, -49.818318907)),
        Edge.make_three_point_arc((-11.469163068, 0.106053799, -49.818318907), (-11.469163068, -1.913946201, -47.798318907), (-11.469163068, 0.106053799, -45.778318907)),
    ]
    combine1_10 = Solid(Shell([*[Face.make_surface_from_curves(combine1_10_from[k], combine1_10_to[k]) for k in range(2)], Face(Wire(combine1_10_from)), Face(Wire(combine1_10_to))]))
    add(combine1_10, mode=Mode.SUBTRACT)


solid = part.part
